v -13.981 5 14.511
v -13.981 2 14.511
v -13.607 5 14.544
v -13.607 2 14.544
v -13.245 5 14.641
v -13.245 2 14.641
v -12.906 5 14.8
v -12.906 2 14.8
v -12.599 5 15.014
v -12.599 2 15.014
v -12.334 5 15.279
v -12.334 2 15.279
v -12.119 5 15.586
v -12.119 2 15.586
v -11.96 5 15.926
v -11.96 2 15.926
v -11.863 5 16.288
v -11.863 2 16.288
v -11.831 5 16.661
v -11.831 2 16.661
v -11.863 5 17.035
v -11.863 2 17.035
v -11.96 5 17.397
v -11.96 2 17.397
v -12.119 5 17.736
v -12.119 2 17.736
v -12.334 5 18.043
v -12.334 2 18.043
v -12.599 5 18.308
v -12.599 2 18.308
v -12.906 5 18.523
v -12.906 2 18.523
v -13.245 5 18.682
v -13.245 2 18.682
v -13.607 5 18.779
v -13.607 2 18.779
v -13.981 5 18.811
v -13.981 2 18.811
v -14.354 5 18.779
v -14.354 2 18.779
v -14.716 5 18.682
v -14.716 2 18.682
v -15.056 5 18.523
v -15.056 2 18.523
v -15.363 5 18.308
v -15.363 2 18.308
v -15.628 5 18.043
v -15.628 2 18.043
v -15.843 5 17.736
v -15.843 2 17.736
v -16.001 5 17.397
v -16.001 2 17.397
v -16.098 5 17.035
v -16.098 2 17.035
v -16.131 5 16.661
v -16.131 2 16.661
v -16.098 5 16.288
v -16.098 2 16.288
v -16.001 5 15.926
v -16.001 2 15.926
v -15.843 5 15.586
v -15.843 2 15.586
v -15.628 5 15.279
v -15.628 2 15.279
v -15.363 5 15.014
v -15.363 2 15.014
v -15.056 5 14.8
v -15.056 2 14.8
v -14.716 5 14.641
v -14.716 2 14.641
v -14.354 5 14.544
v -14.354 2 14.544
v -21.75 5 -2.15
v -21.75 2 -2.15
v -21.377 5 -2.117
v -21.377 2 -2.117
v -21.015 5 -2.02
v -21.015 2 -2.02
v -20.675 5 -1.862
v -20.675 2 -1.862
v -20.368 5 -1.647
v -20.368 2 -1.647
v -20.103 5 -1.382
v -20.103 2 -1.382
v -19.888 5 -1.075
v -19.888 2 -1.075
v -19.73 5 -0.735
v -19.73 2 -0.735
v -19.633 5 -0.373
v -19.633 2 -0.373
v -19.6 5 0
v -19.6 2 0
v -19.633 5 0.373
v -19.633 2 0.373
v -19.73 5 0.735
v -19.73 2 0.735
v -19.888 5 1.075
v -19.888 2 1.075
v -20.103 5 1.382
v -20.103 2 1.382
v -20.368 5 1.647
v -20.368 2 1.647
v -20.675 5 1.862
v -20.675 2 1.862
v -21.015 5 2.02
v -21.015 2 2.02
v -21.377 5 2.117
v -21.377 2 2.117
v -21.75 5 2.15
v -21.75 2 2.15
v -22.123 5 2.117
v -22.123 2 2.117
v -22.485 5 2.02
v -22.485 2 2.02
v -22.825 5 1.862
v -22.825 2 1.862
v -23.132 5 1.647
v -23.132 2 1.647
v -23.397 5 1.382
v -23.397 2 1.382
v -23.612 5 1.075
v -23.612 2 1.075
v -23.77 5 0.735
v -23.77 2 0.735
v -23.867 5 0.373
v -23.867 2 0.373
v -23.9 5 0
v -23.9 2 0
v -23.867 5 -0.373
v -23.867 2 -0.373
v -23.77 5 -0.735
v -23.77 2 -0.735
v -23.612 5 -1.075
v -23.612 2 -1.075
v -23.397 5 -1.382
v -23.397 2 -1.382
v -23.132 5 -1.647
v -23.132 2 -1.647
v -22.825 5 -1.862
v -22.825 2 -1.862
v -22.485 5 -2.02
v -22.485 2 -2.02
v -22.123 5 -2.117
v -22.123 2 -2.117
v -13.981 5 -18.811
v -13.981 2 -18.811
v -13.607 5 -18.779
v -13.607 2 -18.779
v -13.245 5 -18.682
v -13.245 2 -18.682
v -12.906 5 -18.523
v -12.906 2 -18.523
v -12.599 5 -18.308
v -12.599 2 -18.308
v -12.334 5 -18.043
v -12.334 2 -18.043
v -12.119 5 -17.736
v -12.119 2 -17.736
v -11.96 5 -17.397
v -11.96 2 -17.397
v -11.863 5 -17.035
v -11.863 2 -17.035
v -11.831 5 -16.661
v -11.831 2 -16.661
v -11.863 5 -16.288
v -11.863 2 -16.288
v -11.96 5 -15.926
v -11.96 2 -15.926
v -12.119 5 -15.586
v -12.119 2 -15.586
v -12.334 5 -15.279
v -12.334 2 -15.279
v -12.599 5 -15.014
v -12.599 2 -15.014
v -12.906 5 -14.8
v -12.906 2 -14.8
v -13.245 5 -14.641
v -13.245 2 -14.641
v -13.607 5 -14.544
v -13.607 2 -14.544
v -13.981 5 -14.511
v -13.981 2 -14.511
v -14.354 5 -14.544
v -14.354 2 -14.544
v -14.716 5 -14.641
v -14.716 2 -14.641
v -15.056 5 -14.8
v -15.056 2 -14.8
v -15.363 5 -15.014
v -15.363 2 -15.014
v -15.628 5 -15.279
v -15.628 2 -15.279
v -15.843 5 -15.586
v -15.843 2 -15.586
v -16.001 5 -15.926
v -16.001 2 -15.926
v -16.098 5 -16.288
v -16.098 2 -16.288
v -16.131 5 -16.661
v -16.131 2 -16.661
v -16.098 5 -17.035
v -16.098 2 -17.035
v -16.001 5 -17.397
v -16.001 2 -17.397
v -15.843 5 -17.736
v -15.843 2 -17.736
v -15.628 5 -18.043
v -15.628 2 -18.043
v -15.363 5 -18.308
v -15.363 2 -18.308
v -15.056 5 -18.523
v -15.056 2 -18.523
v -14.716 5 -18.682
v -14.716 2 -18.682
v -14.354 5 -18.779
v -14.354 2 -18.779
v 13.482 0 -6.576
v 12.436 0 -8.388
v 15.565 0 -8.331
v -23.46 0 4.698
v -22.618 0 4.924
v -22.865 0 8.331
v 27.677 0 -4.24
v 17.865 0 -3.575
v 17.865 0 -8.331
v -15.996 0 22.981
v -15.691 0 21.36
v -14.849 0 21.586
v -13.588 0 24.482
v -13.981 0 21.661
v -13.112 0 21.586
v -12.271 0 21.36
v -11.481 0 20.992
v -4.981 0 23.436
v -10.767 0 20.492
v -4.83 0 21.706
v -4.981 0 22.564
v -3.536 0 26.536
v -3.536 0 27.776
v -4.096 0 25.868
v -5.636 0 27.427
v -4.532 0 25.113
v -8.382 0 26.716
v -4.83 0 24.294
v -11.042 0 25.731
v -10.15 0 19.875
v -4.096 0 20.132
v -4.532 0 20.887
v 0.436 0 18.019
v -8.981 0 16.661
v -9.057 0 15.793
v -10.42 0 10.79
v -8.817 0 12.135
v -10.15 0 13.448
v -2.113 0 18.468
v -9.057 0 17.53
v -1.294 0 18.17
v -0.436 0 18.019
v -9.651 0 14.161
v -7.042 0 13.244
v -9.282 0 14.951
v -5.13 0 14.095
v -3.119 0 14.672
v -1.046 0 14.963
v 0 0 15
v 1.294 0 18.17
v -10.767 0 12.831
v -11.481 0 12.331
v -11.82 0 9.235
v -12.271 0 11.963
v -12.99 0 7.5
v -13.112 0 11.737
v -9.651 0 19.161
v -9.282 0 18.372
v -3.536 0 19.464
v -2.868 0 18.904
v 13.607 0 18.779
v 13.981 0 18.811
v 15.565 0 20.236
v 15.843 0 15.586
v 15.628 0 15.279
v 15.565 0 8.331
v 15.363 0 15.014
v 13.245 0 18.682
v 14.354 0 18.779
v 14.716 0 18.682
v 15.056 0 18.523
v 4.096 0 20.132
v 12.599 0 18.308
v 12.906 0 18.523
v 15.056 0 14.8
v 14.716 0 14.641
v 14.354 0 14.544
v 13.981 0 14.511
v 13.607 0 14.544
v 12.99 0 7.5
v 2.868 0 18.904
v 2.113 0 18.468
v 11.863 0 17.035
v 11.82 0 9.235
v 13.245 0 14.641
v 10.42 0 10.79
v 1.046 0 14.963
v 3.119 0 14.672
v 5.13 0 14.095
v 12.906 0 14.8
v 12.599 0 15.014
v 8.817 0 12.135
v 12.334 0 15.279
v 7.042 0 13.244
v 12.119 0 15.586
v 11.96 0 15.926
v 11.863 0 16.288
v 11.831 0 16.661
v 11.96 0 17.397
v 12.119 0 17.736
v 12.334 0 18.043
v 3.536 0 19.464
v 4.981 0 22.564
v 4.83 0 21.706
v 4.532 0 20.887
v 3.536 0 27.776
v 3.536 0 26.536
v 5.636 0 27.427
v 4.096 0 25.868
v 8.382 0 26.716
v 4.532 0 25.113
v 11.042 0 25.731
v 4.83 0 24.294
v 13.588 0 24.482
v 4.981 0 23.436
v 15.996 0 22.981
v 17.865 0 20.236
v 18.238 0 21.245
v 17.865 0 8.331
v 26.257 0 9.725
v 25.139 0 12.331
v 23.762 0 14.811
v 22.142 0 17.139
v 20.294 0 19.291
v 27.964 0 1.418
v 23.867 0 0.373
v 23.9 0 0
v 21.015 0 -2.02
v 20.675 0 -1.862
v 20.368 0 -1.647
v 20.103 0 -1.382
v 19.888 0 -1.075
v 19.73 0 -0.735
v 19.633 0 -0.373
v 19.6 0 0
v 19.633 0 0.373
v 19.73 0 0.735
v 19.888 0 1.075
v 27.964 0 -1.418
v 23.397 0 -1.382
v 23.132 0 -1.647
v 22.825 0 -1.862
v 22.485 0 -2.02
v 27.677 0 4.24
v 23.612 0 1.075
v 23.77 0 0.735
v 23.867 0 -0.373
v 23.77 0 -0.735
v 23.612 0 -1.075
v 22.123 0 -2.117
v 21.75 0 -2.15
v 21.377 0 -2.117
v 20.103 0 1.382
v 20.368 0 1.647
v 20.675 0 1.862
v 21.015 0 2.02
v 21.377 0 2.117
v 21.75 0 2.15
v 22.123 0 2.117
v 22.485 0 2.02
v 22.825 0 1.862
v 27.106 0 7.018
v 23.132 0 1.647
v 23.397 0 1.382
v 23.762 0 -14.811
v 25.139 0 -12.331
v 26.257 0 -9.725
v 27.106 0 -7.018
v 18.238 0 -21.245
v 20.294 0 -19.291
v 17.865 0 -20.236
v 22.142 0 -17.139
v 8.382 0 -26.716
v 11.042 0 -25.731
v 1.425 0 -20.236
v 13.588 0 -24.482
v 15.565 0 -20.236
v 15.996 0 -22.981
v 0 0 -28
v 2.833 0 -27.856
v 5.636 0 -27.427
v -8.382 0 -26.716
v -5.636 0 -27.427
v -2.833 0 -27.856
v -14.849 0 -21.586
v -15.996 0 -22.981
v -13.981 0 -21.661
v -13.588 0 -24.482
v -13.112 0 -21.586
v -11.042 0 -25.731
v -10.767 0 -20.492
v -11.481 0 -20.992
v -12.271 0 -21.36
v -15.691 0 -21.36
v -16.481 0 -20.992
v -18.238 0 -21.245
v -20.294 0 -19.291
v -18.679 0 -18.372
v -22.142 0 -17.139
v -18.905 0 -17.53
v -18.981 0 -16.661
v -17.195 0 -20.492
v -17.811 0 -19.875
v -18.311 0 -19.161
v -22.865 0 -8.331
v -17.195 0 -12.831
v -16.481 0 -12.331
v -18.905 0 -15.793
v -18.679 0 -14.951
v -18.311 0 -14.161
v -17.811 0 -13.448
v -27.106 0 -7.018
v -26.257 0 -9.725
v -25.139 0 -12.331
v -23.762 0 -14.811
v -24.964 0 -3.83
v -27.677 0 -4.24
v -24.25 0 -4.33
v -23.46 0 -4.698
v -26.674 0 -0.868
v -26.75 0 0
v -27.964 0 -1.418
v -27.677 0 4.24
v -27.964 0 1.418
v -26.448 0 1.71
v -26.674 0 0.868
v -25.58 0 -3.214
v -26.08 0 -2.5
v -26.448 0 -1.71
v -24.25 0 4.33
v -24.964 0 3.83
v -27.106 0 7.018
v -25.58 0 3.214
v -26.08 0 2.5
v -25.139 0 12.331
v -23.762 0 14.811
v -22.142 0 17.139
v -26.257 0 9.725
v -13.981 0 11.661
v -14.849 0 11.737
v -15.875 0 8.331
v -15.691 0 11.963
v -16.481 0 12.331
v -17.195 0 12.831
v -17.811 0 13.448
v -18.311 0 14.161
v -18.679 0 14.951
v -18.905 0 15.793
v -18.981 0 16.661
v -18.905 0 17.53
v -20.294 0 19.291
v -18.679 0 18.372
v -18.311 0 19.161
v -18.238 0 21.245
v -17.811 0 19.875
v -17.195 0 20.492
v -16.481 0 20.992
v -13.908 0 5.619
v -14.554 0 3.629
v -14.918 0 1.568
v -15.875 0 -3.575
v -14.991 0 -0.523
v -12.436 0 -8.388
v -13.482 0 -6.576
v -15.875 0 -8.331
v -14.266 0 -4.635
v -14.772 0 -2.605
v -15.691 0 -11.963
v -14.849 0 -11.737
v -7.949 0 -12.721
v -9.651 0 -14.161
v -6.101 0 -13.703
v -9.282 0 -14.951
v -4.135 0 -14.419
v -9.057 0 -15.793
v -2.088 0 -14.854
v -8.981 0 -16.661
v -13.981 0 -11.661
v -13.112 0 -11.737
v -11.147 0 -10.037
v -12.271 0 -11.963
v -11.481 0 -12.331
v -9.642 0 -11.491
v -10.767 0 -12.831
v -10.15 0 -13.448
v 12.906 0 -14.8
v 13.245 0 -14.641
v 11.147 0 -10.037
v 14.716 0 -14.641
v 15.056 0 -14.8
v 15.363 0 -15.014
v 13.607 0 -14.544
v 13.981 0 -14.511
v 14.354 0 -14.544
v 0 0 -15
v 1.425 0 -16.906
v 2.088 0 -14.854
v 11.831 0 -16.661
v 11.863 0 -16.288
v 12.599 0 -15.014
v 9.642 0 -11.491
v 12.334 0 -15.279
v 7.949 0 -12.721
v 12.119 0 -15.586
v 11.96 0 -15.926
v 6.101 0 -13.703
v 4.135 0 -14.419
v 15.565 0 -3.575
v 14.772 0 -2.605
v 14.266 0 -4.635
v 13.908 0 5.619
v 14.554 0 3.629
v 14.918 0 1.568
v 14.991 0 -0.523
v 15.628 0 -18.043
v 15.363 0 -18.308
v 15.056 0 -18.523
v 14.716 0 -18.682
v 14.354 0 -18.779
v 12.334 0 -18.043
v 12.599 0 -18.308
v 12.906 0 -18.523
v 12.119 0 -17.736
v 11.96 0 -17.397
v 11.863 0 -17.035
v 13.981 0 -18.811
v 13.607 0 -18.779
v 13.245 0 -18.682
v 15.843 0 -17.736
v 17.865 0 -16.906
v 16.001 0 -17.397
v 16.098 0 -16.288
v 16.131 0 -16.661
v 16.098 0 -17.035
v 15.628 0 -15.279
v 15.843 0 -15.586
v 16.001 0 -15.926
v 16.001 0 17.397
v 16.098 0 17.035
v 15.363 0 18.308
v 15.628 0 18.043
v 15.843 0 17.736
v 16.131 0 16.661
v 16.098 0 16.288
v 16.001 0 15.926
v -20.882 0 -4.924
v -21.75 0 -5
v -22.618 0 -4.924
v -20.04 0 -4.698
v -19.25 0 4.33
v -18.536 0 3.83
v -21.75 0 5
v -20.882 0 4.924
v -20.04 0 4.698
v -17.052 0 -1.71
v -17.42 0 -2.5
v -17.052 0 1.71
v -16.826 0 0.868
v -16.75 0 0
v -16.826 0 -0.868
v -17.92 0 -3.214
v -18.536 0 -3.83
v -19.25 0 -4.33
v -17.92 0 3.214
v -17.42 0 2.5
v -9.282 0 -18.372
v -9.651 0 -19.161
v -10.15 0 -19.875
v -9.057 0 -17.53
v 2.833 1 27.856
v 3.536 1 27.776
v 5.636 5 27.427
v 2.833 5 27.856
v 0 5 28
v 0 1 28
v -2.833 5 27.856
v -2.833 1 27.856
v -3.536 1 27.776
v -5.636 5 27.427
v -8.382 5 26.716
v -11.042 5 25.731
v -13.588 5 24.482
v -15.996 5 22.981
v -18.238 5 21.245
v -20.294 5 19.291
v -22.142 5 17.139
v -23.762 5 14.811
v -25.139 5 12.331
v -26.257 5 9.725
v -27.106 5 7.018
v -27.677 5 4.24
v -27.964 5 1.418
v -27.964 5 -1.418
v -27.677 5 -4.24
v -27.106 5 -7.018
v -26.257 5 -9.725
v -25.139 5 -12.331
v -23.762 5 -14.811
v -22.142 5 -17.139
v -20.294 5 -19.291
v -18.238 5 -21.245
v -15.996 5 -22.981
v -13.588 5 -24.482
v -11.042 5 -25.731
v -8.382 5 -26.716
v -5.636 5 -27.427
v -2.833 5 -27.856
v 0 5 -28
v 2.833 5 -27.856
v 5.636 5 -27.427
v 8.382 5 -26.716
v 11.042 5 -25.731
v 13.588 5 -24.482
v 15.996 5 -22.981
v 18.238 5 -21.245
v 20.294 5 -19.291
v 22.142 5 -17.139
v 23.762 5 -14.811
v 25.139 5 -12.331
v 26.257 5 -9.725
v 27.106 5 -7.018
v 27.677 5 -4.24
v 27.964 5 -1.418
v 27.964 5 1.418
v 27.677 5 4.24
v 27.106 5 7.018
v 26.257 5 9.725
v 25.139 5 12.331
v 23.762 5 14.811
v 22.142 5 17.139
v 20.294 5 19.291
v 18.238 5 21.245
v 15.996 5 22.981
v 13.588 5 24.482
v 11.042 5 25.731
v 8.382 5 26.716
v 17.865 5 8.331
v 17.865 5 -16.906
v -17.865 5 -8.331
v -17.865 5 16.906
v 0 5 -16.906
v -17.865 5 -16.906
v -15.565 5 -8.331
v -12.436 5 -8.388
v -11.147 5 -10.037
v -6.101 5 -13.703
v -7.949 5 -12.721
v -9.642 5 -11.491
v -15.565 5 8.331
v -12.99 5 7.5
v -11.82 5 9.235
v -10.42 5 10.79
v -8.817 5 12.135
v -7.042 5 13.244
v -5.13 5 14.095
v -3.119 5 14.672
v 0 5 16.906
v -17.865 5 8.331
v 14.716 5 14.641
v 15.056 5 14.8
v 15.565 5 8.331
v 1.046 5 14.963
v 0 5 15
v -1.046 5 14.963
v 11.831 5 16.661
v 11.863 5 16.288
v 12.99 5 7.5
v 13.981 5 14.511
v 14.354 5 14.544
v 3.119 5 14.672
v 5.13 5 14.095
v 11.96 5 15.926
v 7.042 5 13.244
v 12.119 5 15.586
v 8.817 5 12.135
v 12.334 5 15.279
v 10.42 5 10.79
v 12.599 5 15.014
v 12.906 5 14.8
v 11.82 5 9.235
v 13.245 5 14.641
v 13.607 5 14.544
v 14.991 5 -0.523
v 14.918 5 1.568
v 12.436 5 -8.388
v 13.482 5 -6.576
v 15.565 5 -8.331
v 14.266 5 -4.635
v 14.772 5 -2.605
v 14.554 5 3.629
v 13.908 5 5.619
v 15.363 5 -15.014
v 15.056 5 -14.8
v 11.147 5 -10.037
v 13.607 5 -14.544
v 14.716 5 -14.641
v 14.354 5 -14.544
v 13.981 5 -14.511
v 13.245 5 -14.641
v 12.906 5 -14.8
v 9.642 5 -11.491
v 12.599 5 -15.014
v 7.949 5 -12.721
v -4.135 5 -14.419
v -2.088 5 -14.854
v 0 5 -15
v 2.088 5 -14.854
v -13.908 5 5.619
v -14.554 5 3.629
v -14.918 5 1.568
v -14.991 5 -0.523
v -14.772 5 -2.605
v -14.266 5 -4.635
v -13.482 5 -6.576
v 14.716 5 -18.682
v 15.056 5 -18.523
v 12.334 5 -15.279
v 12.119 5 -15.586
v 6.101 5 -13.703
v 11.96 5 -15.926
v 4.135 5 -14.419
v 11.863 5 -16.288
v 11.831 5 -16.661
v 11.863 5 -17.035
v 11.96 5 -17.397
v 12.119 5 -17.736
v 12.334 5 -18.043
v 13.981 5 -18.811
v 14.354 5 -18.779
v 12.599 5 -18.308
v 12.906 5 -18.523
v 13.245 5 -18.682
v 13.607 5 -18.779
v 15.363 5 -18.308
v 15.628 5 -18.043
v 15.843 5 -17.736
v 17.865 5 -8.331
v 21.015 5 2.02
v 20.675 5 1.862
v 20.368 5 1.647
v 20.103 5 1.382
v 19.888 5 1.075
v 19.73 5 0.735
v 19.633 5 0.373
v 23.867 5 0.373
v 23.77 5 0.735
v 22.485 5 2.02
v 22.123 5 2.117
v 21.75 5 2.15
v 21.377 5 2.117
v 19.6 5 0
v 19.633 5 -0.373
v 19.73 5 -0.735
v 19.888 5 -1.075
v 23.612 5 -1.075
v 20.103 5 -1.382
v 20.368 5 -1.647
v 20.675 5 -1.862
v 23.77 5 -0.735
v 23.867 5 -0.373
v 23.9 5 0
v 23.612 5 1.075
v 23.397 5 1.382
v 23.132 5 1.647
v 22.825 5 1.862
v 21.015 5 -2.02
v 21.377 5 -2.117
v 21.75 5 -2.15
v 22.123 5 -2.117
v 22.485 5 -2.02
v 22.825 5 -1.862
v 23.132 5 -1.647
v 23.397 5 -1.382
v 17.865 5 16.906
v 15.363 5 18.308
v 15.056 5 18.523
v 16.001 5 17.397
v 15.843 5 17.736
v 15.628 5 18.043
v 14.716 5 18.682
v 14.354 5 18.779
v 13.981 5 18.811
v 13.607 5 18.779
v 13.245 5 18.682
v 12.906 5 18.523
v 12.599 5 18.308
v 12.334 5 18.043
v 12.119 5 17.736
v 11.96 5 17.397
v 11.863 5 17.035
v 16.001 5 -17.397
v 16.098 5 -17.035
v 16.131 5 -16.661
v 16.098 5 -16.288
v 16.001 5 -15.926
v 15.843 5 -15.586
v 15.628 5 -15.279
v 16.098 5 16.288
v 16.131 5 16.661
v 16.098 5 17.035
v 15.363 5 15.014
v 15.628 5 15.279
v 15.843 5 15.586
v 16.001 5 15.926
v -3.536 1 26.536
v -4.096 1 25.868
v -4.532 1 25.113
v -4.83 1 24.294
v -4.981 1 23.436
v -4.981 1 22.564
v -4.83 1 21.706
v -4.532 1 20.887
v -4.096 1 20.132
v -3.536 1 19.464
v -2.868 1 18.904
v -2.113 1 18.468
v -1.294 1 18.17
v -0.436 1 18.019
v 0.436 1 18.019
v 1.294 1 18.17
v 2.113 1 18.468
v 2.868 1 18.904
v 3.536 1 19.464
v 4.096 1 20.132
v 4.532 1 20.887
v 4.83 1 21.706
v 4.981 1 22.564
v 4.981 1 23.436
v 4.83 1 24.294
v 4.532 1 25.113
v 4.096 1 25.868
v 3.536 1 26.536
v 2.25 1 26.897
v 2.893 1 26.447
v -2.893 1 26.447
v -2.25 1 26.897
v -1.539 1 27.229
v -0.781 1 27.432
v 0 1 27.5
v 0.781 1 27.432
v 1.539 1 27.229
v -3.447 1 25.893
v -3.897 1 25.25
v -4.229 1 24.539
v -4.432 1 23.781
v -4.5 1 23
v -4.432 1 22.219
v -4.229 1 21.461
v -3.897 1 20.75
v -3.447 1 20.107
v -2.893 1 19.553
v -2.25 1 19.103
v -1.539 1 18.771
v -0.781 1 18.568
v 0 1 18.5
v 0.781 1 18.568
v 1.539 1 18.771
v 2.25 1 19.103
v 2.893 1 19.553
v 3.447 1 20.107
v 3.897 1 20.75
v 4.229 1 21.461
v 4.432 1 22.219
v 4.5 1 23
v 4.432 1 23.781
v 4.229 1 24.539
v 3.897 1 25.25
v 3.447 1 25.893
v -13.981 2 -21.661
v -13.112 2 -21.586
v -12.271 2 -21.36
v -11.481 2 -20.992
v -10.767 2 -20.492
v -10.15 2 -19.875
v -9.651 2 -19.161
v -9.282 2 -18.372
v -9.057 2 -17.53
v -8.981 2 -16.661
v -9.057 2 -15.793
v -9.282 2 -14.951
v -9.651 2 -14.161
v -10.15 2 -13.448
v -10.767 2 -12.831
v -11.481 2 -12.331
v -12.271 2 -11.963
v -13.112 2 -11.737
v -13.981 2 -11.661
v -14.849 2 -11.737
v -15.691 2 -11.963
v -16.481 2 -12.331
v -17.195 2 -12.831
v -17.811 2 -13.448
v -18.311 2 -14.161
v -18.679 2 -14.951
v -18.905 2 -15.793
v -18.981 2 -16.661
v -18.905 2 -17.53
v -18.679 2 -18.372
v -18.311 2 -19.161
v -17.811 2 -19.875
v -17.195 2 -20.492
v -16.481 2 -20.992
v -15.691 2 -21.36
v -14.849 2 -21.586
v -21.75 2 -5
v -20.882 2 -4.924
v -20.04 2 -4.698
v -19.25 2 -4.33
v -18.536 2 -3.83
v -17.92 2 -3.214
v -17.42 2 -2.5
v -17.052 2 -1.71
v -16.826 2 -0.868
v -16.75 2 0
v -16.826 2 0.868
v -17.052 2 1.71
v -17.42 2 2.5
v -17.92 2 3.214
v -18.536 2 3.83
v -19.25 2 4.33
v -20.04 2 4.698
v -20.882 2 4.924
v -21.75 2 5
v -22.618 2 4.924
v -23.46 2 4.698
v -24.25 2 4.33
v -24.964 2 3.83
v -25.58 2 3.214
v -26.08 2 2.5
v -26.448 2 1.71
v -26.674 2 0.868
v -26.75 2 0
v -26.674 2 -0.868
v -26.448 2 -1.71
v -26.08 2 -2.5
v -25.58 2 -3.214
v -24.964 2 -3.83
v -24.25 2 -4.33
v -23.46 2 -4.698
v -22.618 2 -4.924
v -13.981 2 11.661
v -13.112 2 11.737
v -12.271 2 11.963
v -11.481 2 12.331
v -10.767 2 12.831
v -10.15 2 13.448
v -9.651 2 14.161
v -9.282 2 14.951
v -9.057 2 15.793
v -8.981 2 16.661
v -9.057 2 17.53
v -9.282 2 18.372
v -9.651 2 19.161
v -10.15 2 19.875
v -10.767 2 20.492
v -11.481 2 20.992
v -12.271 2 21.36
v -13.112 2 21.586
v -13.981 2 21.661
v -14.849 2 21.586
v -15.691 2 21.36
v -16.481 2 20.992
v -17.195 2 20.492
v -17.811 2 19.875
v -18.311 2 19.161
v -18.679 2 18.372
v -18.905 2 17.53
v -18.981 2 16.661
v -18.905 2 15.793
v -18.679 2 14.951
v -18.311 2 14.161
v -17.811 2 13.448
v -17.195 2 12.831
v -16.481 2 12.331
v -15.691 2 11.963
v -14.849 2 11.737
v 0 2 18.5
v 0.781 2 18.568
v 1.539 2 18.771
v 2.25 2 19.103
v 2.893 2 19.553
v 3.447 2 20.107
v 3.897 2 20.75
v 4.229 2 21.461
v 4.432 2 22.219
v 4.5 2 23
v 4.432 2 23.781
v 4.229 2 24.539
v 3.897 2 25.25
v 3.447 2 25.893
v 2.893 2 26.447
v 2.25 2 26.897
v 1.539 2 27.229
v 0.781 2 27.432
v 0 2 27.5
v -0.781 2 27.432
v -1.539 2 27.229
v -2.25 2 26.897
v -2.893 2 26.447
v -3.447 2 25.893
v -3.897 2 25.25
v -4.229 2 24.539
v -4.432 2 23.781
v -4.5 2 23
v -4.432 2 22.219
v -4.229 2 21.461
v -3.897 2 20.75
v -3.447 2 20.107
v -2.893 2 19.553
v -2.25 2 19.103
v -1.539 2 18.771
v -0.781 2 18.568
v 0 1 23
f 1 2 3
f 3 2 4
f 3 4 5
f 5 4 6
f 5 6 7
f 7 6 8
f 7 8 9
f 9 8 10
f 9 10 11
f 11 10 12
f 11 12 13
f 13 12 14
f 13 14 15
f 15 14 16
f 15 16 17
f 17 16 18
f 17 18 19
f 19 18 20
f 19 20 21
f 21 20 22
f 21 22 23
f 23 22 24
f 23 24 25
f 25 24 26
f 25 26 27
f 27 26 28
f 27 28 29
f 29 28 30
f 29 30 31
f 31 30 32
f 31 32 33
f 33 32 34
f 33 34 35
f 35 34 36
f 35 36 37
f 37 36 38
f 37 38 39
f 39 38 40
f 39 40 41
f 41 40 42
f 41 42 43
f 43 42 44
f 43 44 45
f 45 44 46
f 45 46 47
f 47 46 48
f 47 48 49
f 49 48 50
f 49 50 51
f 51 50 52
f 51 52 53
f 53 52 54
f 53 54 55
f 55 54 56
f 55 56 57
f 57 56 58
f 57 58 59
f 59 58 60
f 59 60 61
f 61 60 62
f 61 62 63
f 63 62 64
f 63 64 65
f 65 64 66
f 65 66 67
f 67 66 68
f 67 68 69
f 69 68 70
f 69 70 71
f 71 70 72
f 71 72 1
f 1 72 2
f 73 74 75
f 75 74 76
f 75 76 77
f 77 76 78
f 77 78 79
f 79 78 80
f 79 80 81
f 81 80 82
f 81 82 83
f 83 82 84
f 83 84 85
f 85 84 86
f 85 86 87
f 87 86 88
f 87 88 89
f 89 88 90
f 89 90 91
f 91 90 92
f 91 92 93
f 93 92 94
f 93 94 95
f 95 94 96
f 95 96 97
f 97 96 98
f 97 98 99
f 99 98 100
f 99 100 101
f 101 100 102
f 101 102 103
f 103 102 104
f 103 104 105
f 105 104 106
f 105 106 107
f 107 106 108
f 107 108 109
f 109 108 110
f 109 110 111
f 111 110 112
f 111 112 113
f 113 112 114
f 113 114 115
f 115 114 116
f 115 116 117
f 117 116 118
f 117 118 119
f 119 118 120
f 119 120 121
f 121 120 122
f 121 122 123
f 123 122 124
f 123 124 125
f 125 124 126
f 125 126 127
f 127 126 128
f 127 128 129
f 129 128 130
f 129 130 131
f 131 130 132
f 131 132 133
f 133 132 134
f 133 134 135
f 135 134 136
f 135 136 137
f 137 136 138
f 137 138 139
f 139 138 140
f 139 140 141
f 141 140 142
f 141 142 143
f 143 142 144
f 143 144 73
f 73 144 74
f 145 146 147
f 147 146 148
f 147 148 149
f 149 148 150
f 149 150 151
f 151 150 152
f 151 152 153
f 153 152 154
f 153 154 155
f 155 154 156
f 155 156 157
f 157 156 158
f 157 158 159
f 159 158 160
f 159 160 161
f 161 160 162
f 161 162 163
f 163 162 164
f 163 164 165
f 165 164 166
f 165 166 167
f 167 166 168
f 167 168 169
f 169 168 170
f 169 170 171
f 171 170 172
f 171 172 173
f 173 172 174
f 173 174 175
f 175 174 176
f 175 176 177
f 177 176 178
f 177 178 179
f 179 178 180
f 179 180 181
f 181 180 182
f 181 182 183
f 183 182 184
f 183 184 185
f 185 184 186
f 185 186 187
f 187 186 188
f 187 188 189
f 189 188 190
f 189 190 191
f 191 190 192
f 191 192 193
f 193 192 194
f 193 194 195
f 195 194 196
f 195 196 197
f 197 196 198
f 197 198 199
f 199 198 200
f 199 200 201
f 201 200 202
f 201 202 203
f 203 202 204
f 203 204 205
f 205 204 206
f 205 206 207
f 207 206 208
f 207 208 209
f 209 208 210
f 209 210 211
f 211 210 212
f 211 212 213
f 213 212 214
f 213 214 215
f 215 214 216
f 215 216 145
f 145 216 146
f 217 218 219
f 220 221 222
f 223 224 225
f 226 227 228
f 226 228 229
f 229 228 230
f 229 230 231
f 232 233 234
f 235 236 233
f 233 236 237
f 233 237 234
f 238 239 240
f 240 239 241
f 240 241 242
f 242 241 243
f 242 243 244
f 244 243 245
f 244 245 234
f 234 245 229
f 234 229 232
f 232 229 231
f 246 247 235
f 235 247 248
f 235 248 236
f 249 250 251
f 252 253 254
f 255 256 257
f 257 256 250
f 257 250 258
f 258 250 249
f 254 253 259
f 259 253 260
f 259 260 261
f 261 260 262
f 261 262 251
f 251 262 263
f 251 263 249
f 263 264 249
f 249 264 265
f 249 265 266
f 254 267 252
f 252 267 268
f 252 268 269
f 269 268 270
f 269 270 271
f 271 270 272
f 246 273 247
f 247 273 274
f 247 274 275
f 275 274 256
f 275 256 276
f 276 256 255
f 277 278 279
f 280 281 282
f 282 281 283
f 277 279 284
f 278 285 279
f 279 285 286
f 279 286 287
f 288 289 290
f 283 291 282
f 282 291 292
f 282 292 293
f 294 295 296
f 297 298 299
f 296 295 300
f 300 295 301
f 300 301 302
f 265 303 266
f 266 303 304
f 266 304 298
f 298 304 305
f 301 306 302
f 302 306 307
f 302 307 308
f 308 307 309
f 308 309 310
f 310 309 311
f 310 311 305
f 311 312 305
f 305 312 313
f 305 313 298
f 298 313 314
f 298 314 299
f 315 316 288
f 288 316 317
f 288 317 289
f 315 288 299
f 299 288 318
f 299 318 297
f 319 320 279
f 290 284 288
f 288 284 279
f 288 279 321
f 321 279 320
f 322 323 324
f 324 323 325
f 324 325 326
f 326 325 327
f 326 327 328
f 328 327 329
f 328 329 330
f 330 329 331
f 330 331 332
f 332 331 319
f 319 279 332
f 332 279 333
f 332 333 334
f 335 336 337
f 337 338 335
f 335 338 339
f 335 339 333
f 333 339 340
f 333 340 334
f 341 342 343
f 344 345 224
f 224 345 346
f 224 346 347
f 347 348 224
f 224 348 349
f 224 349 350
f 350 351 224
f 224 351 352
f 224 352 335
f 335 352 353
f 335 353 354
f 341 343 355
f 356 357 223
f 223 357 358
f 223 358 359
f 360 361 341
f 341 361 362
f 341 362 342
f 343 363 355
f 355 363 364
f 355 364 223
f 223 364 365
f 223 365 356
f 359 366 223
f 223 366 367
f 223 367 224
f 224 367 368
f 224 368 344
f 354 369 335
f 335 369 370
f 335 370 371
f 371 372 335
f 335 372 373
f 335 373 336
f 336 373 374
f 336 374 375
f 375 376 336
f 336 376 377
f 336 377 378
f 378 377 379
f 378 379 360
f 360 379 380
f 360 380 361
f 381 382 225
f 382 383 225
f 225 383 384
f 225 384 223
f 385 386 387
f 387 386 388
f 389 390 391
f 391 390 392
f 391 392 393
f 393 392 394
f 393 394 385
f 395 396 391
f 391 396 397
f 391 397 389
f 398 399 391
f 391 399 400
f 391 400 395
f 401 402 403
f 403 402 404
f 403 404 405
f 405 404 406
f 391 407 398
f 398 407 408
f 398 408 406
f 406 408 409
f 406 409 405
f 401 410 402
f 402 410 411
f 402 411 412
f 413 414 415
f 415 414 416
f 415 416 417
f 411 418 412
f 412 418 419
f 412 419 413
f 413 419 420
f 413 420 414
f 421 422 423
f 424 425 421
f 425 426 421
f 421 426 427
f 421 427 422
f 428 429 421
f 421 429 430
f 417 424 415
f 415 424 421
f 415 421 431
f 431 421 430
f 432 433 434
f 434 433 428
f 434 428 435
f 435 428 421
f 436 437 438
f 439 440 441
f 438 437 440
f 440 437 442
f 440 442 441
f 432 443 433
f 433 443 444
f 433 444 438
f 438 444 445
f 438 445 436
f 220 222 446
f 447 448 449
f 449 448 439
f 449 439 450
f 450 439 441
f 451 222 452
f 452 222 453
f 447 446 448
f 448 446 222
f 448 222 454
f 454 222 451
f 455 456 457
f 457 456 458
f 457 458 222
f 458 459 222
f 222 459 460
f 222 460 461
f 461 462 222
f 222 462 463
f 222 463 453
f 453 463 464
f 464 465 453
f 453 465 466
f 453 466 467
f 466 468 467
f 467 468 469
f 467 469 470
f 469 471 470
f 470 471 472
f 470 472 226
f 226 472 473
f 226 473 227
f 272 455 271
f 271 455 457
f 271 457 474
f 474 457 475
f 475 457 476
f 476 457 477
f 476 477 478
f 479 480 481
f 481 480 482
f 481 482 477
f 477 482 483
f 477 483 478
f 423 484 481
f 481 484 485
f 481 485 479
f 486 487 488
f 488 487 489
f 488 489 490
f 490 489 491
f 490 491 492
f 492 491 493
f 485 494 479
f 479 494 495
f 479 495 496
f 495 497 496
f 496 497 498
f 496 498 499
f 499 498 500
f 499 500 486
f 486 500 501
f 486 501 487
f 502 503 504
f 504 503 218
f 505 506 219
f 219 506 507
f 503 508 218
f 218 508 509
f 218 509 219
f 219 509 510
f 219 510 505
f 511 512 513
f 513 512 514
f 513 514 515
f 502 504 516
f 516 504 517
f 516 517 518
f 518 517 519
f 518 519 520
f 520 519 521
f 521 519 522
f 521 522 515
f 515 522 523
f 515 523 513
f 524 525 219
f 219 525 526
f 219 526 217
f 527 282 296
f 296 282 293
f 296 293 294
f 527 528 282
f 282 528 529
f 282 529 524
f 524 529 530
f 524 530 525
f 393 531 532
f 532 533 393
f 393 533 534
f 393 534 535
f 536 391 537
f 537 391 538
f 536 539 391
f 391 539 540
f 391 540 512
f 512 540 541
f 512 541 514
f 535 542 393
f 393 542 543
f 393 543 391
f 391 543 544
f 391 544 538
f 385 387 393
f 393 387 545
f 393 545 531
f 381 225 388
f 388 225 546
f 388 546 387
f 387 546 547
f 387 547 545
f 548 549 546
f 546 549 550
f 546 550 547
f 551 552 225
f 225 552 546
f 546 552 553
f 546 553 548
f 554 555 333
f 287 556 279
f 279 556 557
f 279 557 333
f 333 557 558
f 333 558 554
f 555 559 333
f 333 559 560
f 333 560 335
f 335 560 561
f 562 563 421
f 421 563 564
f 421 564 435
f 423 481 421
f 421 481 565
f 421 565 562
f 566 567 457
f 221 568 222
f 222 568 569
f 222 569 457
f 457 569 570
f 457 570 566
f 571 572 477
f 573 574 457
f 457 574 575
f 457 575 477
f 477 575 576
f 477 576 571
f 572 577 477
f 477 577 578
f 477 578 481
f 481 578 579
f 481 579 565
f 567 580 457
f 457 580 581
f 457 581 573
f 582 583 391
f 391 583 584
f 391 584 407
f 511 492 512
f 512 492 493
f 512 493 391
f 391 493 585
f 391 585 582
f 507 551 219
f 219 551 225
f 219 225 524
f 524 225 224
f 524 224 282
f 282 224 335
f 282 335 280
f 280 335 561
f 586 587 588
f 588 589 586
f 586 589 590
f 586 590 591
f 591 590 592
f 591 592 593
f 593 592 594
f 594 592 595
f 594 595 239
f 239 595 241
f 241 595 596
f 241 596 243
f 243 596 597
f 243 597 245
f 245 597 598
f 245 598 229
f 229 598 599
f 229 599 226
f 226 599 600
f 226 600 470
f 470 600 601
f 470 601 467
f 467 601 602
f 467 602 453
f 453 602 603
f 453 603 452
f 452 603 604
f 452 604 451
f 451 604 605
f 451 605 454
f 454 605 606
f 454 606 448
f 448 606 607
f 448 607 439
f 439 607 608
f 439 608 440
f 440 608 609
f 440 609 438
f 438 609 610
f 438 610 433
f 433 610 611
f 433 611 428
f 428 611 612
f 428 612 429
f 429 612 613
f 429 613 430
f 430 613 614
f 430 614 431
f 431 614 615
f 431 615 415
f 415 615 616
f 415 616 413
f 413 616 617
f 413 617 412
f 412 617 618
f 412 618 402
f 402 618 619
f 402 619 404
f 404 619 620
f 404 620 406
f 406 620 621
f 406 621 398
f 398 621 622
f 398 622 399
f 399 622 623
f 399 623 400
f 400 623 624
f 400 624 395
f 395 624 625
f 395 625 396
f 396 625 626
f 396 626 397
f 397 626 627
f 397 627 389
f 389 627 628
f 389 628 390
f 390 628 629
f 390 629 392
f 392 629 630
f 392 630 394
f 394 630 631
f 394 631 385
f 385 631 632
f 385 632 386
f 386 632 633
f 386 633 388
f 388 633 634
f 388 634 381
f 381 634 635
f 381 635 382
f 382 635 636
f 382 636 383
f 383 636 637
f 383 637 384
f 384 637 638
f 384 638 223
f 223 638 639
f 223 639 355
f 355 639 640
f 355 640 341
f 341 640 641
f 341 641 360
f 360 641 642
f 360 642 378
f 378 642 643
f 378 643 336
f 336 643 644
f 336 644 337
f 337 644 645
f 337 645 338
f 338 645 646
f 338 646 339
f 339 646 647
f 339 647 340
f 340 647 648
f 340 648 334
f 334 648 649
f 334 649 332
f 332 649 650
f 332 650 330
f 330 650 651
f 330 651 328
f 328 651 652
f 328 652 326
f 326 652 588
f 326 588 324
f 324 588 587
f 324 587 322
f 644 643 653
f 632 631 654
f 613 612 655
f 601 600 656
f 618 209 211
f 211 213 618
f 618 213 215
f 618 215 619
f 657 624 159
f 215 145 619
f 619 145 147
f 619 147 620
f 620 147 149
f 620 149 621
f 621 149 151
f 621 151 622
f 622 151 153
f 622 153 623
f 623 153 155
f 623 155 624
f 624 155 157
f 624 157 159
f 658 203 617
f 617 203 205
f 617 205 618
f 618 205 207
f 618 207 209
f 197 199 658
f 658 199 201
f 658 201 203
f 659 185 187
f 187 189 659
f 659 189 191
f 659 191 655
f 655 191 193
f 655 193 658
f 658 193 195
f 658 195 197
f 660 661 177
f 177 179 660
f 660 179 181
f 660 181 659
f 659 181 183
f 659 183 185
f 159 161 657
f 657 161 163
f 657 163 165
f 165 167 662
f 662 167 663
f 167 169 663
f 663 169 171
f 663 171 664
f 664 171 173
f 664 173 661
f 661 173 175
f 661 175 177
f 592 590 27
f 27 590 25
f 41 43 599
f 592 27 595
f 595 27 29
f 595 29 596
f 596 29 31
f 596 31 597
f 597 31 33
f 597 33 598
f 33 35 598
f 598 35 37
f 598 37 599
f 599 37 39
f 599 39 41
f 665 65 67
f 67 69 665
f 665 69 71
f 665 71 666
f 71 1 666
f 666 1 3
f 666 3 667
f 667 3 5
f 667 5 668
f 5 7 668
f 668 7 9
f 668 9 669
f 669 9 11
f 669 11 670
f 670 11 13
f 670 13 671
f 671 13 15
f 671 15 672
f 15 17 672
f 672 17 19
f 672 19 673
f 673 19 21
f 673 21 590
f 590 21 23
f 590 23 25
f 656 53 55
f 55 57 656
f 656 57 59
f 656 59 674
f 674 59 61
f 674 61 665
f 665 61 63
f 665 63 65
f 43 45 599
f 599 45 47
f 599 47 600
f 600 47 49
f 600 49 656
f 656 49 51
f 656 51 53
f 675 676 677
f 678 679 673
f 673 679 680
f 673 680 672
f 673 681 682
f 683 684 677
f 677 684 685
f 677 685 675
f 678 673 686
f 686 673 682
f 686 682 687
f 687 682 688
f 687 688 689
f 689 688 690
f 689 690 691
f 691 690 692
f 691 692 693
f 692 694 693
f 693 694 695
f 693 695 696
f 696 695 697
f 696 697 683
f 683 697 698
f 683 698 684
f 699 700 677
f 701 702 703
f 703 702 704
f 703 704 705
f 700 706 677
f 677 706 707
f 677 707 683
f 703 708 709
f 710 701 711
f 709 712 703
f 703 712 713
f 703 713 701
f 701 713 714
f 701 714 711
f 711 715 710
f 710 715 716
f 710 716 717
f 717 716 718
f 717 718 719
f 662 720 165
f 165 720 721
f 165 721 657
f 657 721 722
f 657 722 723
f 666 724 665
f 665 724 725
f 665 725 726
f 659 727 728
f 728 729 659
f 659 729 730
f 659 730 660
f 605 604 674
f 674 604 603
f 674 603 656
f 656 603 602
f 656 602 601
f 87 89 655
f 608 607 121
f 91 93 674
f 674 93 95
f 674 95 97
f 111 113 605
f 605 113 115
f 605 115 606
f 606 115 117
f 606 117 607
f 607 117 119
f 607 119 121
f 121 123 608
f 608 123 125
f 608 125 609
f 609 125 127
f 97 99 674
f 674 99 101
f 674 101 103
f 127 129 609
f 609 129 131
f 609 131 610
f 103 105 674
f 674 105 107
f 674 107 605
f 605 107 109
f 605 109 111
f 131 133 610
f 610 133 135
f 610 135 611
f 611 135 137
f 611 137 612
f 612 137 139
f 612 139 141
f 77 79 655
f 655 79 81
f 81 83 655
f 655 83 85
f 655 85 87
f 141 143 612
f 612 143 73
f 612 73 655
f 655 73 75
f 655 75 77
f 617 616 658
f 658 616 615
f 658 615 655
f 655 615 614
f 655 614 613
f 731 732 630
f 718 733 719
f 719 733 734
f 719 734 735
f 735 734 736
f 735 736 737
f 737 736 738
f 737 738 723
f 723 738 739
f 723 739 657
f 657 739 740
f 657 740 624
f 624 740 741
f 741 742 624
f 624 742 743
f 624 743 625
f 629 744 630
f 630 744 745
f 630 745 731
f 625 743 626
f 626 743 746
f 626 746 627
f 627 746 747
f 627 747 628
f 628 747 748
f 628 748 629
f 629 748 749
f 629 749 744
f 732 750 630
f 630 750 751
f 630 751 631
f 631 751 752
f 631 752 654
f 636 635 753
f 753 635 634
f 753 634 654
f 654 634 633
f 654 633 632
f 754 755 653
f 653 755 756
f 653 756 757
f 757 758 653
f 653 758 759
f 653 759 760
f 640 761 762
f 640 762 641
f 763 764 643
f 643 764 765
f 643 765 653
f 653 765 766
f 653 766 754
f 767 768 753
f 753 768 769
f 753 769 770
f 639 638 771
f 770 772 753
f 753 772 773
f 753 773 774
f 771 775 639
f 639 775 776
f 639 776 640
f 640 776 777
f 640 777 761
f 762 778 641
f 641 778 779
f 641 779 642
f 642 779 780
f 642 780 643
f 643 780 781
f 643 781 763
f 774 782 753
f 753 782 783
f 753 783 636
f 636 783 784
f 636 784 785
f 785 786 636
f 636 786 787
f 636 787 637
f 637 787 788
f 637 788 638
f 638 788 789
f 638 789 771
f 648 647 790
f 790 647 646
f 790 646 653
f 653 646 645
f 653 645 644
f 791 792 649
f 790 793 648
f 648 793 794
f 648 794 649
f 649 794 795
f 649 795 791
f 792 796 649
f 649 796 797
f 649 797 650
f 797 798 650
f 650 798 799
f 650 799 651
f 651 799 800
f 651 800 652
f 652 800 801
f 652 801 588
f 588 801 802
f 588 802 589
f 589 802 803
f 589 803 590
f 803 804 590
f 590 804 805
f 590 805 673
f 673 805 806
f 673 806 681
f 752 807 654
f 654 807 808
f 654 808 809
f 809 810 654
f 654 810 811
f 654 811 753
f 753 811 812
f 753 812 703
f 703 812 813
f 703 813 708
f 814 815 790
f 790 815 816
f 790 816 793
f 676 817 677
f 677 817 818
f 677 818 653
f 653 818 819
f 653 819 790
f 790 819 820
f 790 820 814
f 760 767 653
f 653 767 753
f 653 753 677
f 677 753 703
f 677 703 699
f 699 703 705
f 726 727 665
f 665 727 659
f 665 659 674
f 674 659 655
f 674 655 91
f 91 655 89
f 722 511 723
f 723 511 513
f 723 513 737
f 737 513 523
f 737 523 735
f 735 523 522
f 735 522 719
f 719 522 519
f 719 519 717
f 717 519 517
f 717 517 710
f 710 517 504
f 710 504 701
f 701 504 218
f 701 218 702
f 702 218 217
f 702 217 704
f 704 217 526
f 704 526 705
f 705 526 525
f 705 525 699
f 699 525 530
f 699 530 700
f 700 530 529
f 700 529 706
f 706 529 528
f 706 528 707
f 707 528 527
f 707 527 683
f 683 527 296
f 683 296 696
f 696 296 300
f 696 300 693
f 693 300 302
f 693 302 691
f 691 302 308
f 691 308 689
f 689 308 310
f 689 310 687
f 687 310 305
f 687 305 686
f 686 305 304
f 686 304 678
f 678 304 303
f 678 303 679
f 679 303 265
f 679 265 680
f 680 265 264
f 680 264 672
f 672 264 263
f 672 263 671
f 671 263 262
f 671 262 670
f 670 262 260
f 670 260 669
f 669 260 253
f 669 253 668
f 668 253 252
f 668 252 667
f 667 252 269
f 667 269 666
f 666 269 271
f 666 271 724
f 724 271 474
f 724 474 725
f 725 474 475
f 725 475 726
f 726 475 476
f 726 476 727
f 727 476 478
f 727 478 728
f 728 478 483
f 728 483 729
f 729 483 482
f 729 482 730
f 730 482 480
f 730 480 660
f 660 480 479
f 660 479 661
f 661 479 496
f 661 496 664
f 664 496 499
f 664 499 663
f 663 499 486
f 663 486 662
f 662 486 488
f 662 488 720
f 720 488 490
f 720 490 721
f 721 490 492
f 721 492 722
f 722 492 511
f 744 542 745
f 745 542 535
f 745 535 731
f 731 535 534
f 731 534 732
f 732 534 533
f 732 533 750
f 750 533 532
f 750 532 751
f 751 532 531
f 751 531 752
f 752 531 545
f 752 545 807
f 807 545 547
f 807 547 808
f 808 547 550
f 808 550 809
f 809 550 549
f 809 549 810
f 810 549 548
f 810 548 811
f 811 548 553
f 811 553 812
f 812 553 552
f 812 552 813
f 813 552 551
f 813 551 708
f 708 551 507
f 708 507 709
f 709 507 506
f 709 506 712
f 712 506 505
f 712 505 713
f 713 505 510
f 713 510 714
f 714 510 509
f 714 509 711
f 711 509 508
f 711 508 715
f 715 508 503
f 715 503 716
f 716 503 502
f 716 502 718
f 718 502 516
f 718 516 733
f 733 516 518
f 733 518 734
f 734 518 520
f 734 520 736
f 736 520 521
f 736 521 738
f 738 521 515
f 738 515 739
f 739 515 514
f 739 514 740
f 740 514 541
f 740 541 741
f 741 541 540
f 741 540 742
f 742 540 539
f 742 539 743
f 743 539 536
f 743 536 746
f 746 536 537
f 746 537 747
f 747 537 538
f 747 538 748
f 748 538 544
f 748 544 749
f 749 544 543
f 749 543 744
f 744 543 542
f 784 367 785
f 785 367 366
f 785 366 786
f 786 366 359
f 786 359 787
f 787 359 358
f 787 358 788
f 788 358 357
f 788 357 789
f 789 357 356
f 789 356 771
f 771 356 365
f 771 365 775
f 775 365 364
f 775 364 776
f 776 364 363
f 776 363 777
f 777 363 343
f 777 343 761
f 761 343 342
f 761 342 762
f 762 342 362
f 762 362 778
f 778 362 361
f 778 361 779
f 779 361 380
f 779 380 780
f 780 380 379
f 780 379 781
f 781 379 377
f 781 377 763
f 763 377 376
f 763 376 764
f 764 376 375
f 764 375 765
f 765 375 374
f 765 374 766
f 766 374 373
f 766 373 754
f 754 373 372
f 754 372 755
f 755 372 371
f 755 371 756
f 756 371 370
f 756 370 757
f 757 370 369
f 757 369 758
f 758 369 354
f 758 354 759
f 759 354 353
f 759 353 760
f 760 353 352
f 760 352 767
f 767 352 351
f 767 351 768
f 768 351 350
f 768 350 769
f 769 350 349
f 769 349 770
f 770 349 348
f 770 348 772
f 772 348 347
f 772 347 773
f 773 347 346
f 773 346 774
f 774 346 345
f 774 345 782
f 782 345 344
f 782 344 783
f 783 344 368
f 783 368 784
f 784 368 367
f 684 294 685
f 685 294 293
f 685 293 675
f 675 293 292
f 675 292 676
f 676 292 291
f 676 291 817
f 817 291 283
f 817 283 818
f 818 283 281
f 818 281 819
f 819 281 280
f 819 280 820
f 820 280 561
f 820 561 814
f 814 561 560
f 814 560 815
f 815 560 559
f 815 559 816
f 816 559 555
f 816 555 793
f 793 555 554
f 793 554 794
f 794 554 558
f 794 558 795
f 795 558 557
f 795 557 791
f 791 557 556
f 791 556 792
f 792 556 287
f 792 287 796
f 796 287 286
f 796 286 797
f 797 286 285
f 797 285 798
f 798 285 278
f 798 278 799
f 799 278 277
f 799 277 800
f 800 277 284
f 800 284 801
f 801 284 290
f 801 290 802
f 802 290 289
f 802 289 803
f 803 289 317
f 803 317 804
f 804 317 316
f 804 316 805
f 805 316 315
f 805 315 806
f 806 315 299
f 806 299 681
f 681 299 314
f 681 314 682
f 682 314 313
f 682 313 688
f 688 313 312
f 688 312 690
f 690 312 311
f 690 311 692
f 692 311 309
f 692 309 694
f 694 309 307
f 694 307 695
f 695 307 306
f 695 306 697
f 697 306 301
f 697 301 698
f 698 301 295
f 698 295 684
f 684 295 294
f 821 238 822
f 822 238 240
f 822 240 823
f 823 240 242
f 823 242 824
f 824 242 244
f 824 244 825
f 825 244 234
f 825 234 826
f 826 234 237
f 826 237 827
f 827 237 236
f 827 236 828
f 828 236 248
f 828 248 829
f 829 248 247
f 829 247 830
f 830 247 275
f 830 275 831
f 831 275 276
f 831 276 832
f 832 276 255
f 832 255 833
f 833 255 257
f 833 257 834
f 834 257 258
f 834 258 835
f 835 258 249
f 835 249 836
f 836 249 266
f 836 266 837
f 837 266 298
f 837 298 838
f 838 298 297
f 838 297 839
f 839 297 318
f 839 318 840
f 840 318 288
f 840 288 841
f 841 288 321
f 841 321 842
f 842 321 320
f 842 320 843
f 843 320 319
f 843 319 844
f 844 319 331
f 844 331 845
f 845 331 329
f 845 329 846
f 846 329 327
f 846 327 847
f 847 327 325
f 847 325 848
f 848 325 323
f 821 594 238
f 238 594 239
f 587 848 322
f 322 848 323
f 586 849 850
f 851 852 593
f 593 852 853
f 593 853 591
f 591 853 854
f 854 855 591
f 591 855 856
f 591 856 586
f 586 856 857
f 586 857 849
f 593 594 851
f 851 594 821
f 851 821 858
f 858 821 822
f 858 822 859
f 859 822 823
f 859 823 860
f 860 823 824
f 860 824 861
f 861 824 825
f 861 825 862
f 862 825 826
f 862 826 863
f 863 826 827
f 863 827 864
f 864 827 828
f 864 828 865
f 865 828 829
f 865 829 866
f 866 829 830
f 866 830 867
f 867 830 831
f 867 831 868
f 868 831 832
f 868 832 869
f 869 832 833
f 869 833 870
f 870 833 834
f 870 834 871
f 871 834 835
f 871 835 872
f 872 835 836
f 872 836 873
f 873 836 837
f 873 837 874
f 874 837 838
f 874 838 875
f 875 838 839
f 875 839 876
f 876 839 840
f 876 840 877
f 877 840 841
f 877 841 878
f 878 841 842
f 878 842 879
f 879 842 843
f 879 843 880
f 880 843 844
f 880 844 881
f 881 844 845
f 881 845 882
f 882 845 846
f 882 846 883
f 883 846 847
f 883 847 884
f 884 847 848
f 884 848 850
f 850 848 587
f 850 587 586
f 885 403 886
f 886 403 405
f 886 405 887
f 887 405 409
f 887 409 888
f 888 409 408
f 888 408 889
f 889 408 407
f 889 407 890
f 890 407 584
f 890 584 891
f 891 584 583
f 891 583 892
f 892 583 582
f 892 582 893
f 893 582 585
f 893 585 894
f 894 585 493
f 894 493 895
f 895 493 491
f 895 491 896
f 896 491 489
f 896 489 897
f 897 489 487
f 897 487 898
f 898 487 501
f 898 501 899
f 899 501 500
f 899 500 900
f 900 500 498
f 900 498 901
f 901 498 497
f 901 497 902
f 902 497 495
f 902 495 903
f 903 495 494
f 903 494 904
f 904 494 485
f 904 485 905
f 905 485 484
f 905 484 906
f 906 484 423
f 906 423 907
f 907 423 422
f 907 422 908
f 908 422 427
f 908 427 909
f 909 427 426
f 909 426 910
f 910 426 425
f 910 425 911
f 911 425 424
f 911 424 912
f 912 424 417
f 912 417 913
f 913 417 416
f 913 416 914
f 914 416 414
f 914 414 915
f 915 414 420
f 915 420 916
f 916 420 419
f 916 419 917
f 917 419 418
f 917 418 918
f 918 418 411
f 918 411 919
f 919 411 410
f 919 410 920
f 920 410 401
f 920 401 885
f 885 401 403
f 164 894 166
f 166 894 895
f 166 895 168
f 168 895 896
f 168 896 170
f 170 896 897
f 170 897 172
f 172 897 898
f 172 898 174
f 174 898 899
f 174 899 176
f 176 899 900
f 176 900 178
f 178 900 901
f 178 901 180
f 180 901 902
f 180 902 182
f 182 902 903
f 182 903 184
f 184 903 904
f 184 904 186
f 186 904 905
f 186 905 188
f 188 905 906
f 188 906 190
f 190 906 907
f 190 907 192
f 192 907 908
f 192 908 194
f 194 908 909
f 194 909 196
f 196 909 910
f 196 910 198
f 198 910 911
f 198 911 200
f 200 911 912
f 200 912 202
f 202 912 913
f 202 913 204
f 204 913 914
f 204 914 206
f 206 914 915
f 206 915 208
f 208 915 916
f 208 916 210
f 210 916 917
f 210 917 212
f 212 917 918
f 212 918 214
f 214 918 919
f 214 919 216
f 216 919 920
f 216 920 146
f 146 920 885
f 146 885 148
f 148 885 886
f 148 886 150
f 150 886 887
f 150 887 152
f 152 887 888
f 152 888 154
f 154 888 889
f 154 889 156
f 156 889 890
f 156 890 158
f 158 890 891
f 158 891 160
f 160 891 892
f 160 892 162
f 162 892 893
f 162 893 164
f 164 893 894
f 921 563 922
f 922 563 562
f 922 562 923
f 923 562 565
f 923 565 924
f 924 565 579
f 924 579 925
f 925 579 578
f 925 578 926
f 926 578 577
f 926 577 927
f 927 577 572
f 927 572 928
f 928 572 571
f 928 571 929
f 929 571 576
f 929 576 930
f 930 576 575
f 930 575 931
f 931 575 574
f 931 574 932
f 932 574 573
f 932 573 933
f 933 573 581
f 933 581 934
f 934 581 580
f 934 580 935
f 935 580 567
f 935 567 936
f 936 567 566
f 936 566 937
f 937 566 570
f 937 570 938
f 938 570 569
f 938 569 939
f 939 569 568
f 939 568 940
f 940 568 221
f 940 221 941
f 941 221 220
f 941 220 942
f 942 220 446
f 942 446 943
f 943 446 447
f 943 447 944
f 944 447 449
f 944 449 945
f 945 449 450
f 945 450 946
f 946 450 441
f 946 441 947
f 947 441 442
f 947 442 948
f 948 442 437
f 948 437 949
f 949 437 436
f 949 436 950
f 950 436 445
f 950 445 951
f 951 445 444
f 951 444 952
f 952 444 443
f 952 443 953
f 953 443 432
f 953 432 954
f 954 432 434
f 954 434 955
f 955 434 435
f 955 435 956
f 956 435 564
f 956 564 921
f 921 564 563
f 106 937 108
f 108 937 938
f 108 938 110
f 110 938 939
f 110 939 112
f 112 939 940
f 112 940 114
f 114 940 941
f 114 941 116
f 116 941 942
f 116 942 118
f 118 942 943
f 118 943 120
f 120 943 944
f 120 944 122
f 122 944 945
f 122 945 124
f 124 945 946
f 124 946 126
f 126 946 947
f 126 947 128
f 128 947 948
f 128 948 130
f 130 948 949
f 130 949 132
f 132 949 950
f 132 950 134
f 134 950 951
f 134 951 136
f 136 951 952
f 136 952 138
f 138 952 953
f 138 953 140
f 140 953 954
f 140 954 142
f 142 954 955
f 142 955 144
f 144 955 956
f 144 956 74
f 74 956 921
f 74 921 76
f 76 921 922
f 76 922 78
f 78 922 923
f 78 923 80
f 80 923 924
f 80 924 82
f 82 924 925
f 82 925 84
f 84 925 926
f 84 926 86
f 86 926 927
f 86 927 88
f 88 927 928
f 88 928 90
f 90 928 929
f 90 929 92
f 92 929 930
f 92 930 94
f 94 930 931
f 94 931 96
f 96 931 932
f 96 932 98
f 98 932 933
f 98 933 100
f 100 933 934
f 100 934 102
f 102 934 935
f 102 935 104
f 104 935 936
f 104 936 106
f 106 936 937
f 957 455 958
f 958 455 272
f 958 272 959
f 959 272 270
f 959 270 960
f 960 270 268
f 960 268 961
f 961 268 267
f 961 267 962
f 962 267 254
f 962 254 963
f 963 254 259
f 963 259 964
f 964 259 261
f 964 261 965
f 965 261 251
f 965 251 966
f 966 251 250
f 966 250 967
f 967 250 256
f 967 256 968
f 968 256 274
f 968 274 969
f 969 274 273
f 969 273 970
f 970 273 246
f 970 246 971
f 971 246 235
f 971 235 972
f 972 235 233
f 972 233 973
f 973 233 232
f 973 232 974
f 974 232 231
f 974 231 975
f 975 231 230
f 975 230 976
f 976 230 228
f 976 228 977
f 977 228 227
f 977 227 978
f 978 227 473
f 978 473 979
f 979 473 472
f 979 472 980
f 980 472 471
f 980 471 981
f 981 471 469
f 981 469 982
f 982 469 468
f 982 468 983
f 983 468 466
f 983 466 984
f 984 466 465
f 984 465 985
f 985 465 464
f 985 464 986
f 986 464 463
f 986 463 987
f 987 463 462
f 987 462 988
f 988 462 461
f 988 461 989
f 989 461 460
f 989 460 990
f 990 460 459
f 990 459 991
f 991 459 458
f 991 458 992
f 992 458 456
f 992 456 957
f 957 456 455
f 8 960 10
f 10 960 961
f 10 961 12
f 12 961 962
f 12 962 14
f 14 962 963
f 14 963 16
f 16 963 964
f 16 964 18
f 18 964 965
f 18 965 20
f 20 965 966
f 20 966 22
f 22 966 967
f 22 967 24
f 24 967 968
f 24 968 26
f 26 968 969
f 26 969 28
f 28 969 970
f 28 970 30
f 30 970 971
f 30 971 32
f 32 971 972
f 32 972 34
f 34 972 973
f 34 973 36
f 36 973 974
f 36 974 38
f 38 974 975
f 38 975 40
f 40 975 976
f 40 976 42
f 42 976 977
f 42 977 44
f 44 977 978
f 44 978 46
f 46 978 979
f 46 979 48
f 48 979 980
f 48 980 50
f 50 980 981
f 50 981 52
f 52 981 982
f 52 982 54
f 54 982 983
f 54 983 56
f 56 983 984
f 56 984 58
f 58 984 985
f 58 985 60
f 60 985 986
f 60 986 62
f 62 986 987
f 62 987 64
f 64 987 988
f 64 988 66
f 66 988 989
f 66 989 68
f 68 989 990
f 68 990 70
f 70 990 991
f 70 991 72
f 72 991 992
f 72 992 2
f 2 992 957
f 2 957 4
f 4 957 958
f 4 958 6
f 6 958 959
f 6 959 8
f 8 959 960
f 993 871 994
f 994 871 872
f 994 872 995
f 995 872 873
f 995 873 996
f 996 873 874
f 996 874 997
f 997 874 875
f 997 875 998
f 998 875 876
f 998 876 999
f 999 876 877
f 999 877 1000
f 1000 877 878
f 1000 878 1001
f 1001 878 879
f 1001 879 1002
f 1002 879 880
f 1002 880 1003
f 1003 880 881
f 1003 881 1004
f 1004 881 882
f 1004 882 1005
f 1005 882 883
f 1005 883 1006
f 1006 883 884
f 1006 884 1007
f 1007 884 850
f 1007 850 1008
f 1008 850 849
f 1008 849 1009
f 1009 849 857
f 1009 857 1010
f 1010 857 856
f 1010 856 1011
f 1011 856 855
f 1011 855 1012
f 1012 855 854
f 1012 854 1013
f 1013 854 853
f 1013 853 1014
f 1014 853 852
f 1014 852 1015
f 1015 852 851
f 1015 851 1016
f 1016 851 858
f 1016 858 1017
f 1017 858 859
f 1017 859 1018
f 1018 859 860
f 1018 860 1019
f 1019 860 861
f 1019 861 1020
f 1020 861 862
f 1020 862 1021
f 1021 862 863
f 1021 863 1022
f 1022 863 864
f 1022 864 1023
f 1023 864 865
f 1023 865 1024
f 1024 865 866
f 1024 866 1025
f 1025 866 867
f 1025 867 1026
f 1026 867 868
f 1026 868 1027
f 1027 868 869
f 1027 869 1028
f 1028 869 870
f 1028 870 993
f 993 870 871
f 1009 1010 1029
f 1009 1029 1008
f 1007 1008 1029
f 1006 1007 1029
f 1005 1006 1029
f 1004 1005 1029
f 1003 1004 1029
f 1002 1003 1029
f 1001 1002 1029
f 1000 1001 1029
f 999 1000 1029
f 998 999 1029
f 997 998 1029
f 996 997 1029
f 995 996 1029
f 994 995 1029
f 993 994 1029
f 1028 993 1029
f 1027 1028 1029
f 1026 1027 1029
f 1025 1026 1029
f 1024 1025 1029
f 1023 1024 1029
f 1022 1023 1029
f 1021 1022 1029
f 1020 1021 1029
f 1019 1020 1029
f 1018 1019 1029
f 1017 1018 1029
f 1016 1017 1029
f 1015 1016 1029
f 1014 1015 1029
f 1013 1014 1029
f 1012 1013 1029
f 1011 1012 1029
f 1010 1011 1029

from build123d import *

# Parameters (mm, degrees)
SKETCH_1_R          = 28
SKETCH_1_R_2        = 2.15
SKETCH_1_R_3        = 15
EXTRUDE_1_DEPTH     = 5
CUT_EXTRUDE_3_DEPTH = 1
SKETCH_5_R          = 5
CUT_EXTRUDE_5_DEPTH = 2
SKETCH_6_R          = 4.5
CUT_EXTRUDE_6_DEPTH = 1


with BuildPart() as part:
    # 草图1 → 凸台-拉伸1 (new body)
    with BuildSketch(Plane(origin=(0, 0, 0), x_dir=(1, 0, 0), z_dir=(0, 1, 0))):
        Circle(SKETCH_1_R)
        with Locations((13.980630511, -16.661466638)):
            Circle(SKETCH_1_R_2, mode=Mode.SUBTRACT)
        with Locations((13.980630511, 16.661466638)):
            Circle(SKETCH_1_R_2, mode=Mode.SUBTRACT)
        with Locations((21.75, 0)):
            Circle(SKETCH_1_R_2, mode=Mode.SUBTRACT)
        with Locations((-13.980630511, -16.661466638)):
            Circle(SKETCH_1_R_2, mode=Mode.SUBTRACT)
        with Locations((-21.75, 0)):
            Circle(SKETCH_1_R_2, mode=Mode.SUBTRACT)
        with Locations((-13.980630511, 16.661466638)):
            Circle(SKETCH_1_R_2, mode=Mode.SUBTRACT)
        Circle(SKETCH_1_R_3, mode=Mode.SUBTRACT)
    extrude(amount=EXTRUDE_1_DEPTH)

    # 草图2 → 切除-拉伸3 (cut)
    with BuildSketch(Plane(origin=(0, 0, 0), x_dir=(1, 0, 0), z_dir=(0, 1, 0))):
        with BuildLine():
            Line((3.535533906, -26.535533906), (3.535533906, -27.775888825))
            ThreePointArc((3.535533906, -27.775888825), (0, -28), (-3.535533906, -27.775888825))
            Line((-3.535533906, -27.775888825), (-3.535533906, -26.535533906))
            ThreePointArc((-3.535533906, -26.535533906), (0, -18), (3.535533906, -26.535533906))
        make_face()
    extrude(amount=CUT_EXTRUDE_3_DEPTH, mode=Mode.SUBTRACT)

    # 草图5 → 切除-拉伸5 (cut)
    with BuildSketch(Plane.XZ):
        with Locations((-13.980630511, 16.661466638)):
            Circle(SKETCH_5_R)
        with Locations((-21.75, 0)):
            Circle(SKETCH_5_R)
        with Locations((-13.980630511, -16.661466638)):
            Circle(SKETCH_5_R)
    extrude(amount=-CUT_EXTRUDE_5_DEPTH, mode=Mode.SUBTRACT)

    # 草图6 → 切除-拉伸6 (cut)
    with BuildSketch(Plane.XZ.offset(-1)):
        with Locations((0, 23)):
            Circle(SKETCH_6_R)
    extrude(amount=-CUT_EXTRUDE_6_DEPTH, mode=Mode.SUBTRACT)

    # 草图7 → 旋转1 (revolve)
    with BuildSketch(Plane(origin=(0, 0, 0), x_dir=(0, -1, 0), z_dir=(-1, 0, 0))):
        Polygon((-2, 23), (-1, 23), (-2, 27.5), align=None)
    revolve(axis=Axis((0, 2, 23), (0, -1, 0)))


solid = part.part
